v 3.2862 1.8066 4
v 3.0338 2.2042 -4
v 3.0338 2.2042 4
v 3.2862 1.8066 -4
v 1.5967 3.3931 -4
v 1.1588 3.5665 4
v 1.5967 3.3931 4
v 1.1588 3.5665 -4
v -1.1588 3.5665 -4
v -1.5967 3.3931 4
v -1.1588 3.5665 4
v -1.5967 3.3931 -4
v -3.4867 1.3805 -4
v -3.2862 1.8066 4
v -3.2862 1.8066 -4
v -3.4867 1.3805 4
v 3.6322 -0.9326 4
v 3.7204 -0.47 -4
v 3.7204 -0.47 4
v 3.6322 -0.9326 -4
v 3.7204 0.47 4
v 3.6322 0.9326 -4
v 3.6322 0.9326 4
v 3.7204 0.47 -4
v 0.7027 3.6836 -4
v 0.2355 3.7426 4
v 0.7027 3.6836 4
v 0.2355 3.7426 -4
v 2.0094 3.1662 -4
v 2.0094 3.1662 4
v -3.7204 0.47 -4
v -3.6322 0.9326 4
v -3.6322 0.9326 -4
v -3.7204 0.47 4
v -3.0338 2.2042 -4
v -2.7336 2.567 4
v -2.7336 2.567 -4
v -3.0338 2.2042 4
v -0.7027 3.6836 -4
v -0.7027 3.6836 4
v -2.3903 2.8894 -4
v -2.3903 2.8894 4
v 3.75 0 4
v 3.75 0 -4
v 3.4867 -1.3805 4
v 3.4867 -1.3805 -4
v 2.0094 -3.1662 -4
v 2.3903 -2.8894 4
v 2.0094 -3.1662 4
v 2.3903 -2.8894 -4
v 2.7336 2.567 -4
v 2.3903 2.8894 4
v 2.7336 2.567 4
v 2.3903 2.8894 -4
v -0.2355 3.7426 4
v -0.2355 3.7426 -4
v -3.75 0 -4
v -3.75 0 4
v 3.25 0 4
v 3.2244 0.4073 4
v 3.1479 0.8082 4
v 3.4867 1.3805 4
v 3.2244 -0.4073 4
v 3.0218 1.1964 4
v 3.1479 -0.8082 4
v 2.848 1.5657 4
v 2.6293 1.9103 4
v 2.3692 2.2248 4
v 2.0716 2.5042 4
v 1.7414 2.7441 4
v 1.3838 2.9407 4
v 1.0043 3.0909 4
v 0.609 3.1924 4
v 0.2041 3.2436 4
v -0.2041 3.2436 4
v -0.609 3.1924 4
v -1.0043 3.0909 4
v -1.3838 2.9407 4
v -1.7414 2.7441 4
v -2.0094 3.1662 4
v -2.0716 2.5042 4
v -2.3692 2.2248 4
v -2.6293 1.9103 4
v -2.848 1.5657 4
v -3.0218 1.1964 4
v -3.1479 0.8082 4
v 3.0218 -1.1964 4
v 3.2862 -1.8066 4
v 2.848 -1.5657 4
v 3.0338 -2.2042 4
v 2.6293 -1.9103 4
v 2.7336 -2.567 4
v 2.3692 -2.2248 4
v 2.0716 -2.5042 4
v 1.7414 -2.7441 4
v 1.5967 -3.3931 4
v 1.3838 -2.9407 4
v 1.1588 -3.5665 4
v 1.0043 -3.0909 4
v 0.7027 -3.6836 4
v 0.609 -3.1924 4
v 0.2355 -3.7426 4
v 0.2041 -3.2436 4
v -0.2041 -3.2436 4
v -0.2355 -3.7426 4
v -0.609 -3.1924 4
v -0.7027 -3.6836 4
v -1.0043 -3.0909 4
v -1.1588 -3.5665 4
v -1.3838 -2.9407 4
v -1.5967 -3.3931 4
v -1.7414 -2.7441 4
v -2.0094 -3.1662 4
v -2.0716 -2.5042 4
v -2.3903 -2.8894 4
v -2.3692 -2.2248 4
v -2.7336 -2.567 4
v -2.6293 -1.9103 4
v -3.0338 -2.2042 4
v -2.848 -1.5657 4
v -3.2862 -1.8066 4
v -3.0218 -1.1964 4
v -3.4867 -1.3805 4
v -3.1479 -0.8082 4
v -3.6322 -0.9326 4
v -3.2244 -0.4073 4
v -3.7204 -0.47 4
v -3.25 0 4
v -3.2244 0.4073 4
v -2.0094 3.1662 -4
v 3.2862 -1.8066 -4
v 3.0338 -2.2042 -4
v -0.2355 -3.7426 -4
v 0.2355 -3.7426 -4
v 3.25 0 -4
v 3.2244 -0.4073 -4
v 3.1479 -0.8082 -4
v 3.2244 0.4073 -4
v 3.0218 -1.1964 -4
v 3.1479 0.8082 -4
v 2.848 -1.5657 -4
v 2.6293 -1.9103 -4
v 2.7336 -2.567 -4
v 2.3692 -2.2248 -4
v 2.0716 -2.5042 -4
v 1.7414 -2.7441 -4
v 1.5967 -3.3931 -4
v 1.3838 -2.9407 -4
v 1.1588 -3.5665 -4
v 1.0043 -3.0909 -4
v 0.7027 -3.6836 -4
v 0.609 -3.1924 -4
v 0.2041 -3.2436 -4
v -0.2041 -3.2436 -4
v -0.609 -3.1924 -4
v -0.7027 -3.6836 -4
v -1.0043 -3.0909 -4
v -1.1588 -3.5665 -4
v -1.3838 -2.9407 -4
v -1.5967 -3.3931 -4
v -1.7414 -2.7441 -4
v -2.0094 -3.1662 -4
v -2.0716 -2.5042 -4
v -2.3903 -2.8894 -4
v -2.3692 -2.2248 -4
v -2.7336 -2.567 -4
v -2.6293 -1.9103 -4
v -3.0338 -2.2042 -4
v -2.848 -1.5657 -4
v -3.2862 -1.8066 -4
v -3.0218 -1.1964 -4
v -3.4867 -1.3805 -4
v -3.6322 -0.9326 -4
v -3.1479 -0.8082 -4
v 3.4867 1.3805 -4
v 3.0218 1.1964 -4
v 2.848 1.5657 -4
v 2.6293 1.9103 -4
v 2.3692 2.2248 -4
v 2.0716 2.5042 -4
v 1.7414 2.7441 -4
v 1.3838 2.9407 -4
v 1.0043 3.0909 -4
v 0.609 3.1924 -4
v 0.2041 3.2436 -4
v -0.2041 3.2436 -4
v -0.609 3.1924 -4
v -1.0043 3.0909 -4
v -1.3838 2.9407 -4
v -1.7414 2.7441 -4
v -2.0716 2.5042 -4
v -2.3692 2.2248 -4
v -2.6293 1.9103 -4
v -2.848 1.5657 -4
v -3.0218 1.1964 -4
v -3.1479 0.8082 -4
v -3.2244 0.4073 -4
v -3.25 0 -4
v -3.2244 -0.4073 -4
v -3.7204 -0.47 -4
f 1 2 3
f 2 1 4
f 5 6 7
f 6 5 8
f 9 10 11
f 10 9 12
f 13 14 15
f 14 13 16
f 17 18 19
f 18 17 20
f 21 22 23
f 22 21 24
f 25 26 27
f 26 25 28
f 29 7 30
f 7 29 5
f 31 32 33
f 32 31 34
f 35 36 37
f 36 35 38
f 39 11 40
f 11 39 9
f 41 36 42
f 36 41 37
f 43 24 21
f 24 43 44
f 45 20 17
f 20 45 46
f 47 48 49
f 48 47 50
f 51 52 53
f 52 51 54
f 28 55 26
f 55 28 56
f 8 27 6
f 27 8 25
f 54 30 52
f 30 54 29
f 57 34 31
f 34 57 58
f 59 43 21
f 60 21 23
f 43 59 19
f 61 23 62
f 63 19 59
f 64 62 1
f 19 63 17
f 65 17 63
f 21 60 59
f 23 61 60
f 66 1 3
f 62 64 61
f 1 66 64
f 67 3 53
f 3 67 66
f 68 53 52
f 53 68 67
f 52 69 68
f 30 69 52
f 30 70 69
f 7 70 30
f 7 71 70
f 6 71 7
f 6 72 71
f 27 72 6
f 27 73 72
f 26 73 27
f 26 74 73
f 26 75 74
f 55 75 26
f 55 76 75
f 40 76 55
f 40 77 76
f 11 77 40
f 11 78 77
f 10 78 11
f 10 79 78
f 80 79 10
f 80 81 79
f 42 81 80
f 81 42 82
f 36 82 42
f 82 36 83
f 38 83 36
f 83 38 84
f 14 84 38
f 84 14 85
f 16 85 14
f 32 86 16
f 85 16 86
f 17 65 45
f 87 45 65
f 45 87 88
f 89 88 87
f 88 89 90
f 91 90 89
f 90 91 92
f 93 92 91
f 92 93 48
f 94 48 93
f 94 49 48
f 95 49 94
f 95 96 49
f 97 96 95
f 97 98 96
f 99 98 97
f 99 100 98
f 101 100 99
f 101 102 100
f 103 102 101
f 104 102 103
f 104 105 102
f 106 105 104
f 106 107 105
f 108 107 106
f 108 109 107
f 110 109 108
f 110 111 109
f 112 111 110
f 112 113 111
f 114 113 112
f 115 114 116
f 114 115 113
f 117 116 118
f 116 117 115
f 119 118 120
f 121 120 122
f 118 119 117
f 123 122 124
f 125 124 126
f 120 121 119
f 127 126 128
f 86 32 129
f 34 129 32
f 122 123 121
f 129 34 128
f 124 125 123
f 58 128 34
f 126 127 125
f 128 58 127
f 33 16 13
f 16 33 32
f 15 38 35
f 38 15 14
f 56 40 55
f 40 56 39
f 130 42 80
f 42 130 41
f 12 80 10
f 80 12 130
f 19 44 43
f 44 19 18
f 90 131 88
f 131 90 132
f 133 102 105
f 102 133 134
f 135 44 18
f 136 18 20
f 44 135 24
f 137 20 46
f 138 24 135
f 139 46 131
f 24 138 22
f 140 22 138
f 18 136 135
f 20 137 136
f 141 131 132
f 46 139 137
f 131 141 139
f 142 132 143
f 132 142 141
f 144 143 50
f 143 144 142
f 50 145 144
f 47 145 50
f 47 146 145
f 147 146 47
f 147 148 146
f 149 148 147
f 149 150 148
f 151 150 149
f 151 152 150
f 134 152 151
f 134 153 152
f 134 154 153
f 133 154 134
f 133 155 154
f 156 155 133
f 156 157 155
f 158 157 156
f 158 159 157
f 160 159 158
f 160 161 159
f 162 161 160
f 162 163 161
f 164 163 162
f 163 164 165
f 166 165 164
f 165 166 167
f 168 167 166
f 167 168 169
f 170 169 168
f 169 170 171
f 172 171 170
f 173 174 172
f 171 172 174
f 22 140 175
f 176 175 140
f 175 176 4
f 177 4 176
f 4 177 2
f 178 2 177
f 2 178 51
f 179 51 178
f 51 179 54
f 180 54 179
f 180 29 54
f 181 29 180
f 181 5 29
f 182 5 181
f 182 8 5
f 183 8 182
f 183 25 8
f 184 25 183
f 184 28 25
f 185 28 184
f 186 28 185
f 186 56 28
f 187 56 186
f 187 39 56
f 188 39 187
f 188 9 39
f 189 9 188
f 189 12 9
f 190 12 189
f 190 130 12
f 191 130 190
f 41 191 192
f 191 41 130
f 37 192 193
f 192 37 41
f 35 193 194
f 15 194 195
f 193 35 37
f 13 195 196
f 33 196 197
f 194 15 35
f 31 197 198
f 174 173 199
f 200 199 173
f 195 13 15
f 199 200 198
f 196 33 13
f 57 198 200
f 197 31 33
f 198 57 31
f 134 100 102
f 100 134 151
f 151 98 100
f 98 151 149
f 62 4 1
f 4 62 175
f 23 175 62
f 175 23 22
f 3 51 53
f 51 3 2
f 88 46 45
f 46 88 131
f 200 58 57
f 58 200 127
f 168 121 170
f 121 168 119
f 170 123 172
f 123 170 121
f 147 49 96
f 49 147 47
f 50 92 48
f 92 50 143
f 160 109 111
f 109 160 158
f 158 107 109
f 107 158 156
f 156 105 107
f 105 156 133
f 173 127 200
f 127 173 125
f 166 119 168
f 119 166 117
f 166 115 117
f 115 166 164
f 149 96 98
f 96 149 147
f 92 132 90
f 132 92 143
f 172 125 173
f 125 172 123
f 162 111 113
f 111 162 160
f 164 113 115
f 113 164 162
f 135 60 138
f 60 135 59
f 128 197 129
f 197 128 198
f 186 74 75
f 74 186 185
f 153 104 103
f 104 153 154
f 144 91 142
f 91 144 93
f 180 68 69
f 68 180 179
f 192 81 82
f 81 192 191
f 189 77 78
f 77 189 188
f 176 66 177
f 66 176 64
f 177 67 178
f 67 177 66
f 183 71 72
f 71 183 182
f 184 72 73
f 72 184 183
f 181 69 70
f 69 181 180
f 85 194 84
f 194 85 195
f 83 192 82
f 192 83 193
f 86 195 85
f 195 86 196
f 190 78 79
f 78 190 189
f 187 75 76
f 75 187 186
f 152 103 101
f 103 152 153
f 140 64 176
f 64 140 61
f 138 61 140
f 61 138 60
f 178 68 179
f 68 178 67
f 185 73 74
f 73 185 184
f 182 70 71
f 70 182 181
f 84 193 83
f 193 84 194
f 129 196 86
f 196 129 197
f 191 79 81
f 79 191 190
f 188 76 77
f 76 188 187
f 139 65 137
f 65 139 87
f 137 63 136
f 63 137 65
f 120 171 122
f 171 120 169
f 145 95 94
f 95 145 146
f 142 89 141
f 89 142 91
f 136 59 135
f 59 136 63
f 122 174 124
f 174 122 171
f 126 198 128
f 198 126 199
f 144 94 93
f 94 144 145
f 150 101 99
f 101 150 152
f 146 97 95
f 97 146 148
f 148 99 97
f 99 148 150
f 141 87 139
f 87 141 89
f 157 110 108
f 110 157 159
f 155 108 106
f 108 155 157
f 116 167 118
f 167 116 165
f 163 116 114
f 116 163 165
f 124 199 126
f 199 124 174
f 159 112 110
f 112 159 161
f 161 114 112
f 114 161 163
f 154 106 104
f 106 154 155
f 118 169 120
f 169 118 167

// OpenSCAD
$fn = 50;


difference() {
	union() {
		translate(v = [0, 0, -4.0000000000]) {
			cylinder(h = 8, r = 3.7500000000);
		}
	}
	union() {
		translate(v = [0, 0, -100.0000000000]) {
			cylinder(h = 200, r = 3.2500000000);
		}
	}
}
